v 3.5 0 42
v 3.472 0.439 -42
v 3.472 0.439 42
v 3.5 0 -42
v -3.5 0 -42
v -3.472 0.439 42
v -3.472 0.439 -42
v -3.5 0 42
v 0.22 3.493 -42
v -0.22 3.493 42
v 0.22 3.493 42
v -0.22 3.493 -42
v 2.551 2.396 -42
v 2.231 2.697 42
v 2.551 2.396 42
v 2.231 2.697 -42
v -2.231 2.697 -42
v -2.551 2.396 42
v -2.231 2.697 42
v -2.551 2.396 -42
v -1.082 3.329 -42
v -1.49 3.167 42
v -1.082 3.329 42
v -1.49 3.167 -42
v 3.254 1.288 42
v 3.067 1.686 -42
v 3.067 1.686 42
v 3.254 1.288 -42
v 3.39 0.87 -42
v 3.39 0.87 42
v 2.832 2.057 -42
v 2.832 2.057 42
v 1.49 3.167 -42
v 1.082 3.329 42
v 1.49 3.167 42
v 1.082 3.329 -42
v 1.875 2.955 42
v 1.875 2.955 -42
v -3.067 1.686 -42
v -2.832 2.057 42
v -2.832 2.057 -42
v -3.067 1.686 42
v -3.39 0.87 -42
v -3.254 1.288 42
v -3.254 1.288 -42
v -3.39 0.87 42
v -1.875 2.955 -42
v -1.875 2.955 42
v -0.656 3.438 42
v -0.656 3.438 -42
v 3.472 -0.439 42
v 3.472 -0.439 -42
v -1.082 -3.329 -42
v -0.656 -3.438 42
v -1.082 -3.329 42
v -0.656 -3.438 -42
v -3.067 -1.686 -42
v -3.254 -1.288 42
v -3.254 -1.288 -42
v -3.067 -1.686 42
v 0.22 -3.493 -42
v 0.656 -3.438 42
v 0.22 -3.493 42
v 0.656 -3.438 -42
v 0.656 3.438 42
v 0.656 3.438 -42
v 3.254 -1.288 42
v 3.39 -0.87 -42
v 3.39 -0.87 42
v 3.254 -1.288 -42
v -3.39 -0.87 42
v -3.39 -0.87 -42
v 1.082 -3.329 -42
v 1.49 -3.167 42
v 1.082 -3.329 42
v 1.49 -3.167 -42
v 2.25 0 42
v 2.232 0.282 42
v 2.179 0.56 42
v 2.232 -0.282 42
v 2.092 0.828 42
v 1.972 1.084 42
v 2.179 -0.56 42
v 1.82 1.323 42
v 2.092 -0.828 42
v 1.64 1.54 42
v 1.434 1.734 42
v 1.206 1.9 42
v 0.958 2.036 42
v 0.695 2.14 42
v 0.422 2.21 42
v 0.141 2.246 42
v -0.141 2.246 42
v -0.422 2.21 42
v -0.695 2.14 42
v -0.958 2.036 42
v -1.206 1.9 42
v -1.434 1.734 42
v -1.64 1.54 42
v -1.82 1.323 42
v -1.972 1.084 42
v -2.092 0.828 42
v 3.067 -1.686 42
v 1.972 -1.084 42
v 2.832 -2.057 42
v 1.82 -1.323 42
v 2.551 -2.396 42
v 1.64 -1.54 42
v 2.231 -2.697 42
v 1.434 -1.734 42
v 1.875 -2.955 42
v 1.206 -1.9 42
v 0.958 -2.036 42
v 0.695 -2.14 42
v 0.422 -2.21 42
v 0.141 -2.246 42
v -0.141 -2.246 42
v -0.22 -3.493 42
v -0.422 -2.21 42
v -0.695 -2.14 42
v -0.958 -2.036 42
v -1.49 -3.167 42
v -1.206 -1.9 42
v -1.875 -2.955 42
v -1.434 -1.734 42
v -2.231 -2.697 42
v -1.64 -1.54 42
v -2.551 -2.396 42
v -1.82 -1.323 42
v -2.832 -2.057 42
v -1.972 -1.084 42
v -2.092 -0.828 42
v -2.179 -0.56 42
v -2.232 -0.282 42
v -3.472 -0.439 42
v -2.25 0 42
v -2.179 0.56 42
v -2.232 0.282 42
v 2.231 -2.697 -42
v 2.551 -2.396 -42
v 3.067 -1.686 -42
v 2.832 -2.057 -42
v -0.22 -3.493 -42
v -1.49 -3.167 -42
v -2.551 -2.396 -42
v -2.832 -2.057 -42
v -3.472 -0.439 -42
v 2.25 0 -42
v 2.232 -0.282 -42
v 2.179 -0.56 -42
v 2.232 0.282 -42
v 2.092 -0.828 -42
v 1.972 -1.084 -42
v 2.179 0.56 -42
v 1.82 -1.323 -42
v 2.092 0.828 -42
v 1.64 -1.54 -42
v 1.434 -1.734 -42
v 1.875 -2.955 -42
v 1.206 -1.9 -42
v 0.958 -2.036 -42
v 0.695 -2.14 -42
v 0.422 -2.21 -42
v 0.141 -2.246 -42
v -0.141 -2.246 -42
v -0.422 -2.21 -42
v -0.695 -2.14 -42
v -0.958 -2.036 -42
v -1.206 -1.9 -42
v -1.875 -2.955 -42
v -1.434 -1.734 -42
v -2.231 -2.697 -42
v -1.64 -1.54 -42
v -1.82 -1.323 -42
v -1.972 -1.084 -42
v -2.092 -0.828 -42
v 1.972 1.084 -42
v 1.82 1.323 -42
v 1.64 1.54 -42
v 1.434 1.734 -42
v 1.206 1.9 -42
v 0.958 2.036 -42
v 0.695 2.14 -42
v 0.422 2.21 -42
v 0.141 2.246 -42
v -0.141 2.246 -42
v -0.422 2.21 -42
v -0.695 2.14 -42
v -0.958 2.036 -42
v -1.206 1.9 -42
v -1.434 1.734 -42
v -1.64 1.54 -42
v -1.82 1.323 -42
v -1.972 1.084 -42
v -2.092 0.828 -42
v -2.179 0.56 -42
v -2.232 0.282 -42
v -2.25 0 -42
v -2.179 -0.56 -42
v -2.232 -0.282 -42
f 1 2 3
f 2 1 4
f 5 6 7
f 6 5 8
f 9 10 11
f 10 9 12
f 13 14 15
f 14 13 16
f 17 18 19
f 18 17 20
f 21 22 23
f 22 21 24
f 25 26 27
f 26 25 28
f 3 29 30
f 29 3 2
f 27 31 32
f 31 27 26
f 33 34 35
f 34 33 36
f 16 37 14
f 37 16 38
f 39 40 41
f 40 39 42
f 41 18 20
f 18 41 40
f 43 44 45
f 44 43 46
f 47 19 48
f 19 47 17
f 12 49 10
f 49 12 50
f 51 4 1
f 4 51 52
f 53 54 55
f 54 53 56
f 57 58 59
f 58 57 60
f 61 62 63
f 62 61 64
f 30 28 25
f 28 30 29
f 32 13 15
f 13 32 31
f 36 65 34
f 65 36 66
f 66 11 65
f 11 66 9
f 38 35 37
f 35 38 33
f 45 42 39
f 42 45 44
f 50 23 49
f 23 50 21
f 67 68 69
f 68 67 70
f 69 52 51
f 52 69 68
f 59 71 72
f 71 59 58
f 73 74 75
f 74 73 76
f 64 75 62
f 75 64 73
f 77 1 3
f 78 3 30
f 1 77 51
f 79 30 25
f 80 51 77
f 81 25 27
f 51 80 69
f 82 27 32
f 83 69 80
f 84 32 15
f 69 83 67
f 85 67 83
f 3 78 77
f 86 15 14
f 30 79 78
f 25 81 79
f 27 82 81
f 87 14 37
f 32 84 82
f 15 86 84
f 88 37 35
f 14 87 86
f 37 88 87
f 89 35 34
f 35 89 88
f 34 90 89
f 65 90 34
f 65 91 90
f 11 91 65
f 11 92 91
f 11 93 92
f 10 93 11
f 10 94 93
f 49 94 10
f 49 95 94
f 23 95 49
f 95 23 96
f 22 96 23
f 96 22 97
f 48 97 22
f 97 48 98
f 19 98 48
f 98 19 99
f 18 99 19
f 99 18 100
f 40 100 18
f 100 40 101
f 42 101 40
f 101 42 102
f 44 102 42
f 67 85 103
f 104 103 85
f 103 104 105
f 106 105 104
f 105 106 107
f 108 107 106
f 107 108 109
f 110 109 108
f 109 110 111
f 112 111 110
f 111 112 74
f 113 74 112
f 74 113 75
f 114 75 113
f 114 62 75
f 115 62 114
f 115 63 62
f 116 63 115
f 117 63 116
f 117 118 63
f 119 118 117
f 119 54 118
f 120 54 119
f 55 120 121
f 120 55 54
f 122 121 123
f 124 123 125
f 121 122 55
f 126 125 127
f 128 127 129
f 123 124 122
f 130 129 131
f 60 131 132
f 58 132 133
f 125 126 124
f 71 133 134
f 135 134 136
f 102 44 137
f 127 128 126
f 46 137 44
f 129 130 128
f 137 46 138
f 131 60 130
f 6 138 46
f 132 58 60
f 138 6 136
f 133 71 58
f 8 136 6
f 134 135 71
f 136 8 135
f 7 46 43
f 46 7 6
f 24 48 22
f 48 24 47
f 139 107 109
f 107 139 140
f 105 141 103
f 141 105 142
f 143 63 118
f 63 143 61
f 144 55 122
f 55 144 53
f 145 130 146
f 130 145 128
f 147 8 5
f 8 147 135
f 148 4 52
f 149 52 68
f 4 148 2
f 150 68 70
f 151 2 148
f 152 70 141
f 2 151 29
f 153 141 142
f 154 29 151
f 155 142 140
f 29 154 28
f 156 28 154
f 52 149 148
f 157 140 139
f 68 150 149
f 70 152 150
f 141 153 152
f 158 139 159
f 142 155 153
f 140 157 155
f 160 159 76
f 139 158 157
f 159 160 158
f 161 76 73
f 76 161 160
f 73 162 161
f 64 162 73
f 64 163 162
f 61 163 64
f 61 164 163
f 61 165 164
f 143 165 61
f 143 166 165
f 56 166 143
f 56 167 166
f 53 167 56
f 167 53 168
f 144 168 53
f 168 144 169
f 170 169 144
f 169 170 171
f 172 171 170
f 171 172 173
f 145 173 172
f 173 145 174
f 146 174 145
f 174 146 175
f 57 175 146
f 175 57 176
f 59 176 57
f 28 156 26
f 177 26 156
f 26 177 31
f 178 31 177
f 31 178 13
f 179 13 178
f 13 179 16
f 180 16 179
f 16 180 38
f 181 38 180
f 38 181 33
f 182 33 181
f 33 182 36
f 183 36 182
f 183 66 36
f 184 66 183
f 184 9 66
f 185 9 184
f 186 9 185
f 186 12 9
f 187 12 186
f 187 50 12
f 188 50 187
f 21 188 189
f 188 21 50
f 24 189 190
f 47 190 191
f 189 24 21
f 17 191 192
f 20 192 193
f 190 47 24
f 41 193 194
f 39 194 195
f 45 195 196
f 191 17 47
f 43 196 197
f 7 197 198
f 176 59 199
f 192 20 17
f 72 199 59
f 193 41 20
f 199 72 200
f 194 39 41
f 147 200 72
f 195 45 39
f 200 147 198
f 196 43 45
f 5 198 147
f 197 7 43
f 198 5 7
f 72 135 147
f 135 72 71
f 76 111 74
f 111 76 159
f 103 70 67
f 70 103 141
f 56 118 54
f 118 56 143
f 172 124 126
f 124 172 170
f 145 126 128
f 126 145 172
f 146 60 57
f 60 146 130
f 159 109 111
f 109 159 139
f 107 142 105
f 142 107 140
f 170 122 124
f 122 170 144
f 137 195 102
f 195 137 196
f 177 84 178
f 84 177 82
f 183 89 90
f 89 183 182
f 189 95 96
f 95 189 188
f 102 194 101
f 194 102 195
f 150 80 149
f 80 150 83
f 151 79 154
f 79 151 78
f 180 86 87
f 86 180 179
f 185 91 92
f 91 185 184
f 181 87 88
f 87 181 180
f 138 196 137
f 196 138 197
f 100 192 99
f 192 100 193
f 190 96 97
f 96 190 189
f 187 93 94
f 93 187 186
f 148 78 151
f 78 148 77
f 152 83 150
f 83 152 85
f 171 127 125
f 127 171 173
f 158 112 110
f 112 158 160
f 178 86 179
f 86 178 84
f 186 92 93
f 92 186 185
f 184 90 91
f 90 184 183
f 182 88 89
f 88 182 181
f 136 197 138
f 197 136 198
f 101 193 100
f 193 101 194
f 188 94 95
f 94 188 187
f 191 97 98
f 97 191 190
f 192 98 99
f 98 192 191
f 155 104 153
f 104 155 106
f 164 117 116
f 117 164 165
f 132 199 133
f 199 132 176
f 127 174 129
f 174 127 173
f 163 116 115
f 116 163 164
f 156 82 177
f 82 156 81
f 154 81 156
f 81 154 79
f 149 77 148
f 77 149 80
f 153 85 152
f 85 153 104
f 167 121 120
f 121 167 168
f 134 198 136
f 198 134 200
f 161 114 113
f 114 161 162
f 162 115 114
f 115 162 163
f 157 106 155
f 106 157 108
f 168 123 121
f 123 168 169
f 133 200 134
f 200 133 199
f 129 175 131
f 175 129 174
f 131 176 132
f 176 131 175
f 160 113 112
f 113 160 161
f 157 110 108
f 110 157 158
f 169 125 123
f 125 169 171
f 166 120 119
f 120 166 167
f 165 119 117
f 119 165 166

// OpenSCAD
$fn = 50;


difference() {
	union() {
		translate(v = [0, 0, -42.0000000000]) {
			cylinder(h = 84, r = 3.5000000000);
		}
	}
	union() {
		translate(v = [0, 0, -100.0000000000]) {
			cylinder(h = 200, r = 2.2500000000);
		}
	}
}
